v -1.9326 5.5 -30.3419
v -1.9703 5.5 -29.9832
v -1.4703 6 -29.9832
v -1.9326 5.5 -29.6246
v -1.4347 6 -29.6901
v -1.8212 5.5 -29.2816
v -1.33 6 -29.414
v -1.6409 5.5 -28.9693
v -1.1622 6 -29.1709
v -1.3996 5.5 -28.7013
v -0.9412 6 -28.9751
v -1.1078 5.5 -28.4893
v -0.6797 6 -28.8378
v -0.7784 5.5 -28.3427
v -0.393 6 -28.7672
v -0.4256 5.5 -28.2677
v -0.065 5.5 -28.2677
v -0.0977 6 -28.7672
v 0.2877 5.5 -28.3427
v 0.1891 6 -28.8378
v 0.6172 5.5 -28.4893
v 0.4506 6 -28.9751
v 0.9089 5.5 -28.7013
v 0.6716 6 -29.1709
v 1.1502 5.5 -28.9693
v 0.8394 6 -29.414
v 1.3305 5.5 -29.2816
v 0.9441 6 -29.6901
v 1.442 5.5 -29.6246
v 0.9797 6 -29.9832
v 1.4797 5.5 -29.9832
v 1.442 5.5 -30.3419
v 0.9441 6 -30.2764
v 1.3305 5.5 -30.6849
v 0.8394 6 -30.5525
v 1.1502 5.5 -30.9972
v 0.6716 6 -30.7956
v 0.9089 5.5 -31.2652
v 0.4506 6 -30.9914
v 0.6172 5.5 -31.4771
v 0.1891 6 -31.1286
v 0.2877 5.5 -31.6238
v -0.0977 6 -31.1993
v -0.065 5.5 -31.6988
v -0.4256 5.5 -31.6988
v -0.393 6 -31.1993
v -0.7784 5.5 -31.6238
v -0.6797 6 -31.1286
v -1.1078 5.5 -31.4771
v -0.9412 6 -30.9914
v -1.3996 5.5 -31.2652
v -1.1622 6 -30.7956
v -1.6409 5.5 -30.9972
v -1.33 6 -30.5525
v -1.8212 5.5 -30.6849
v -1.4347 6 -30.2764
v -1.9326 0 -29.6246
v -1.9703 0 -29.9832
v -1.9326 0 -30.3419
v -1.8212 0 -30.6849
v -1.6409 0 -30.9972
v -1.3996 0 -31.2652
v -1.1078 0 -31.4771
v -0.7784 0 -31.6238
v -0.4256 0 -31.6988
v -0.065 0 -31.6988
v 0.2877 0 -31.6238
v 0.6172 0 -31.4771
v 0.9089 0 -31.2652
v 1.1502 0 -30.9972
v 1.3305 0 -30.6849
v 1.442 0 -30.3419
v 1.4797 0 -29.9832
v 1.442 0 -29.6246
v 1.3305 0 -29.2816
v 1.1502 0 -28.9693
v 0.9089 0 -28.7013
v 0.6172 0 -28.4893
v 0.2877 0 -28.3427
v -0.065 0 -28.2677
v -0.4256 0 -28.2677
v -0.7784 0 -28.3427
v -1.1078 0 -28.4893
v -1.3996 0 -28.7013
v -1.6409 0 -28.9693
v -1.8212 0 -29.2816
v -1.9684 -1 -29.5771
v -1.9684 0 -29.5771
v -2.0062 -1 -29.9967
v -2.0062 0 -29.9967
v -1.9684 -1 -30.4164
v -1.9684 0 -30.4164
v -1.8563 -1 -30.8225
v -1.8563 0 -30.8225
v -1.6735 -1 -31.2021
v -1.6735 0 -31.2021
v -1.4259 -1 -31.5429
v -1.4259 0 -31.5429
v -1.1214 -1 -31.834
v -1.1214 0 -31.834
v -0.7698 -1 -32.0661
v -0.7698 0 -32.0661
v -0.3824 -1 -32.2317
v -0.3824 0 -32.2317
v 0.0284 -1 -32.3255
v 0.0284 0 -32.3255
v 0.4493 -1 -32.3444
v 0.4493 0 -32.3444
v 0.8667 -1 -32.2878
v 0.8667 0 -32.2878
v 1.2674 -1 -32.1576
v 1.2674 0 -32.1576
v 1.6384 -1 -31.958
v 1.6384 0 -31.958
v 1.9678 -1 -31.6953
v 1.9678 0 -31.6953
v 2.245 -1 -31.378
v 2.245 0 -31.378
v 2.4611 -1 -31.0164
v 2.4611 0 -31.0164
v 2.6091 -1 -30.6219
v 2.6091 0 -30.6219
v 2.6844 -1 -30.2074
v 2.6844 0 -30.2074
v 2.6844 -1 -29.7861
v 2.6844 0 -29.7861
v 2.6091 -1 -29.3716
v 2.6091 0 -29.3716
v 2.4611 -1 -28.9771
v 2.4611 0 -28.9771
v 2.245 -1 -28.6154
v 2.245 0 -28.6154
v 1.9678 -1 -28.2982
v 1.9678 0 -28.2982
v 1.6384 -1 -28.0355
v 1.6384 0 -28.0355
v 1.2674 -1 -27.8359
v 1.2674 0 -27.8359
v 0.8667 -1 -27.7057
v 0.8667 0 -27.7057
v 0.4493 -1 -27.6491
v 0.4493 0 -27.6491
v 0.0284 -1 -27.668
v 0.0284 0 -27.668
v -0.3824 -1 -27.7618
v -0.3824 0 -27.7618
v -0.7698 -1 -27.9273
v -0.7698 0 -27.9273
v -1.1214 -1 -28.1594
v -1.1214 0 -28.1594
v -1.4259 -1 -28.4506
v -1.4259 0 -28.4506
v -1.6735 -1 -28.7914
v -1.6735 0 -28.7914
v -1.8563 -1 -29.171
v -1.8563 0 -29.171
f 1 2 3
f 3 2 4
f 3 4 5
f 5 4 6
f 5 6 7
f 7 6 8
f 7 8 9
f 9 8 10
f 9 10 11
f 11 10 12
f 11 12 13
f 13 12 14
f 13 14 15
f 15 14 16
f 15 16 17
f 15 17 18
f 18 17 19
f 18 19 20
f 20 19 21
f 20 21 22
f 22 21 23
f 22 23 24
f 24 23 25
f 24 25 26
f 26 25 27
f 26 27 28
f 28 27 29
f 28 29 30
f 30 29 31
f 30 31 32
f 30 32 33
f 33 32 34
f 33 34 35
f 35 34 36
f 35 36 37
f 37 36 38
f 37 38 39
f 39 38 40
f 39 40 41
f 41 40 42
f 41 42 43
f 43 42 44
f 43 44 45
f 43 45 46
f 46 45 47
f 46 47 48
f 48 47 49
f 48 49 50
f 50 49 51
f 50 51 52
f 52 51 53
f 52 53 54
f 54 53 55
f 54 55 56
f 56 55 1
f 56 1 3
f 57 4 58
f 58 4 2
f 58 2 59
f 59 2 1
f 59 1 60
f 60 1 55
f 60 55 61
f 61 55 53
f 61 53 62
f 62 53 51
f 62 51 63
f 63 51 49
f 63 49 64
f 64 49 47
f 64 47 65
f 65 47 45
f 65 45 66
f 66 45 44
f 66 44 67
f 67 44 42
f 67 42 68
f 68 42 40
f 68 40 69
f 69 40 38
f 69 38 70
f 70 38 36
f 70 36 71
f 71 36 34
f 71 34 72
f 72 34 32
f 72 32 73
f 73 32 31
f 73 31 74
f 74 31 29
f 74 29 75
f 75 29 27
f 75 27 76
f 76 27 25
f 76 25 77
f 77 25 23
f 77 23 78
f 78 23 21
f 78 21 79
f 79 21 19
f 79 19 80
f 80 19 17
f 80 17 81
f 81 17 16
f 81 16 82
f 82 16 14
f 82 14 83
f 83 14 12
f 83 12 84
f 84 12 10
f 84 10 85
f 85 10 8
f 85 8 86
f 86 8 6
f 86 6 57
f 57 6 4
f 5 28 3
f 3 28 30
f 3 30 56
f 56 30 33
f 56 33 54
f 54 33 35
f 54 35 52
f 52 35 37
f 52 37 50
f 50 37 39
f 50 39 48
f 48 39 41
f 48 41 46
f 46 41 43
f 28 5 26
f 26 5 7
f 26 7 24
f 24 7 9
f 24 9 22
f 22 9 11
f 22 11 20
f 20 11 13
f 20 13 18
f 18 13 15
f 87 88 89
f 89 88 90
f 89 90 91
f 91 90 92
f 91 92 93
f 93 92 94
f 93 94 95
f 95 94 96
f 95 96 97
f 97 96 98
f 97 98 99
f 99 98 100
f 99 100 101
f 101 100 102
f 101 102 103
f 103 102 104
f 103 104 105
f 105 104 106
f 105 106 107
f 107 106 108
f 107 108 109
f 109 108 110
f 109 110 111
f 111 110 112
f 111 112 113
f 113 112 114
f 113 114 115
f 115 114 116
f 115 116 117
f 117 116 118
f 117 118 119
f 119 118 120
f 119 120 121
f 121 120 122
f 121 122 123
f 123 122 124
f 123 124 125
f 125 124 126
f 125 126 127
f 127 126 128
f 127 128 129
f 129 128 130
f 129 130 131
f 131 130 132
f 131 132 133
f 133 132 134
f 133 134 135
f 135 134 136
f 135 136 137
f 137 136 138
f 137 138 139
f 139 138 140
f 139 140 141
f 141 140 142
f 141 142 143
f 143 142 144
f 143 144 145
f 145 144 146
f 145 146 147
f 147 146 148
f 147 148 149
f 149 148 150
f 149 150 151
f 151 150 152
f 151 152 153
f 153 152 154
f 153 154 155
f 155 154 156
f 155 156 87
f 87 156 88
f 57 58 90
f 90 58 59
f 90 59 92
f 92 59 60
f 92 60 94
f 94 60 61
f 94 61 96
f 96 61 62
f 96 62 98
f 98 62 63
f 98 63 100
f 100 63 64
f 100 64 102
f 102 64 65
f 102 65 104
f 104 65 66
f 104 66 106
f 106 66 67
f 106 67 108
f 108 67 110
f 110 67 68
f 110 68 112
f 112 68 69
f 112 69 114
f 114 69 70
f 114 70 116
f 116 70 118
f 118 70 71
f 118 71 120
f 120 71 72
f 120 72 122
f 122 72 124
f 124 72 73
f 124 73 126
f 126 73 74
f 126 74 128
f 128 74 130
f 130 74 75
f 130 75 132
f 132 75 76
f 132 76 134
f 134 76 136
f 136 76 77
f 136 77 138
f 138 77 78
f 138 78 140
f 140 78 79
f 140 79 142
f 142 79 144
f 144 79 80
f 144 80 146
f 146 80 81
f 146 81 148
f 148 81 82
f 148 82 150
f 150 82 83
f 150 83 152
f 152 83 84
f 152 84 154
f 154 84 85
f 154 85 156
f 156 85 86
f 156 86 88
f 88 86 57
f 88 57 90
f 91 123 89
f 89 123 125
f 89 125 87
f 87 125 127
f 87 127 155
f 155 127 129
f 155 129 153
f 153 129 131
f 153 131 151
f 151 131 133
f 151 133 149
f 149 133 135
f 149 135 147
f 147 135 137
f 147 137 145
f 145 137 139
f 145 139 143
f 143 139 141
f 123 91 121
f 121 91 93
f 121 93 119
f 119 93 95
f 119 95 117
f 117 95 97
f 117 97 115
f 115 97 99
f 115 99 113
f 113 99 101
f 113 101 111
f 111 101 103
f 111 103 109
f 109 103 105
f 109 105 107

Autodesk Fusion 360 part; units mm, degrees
sketch "Sketch1" plane through (0, 0, 0) normal (1, 0, 0) x (0, 0, -1)
  circle A0 centre (0, 0) radius 21.5
  line L0 (19.85, -10.1) -> (-19.85, -10.1)
  line L1 (-19.85, -10.1) -> (-19.85, 10.1)
  line L2 (-19.85, 10.1) -> (19.85, 10.1)
  line L3 (19.85, 10.1) -> (19.85, -10.1)
  line L4 (19.85, -10.1) -> (-19.85, 10.1) construction
  line L5 (-19.85, -10.1) -> (19.85, 10.1) construction
  circle A1 centre (0, 0) radius 24
  line L6 (10.25, -26.5) -> (-10.25, -26.5)
  line L7 (-10.25, -26.5) -> (-10.25, 26.5)
  line L8 (-10.25, 26.5) -> (10.25, 26.5)
  line L9 (10.25, 26.5) -> (10.25, -26.5)
  line L10 (10.25, -26.5) -> (-10.25, 26.5) construction
  line L11 (-10.25, -26.5) -> (10.25, 26.5) construction
  line L12 (-10.25, 16.5) -> (10.25, 16.5)
  line L13 (-10.25, -16.5) -> (10.25, -16.5)
  dimension "CaseInnerDiameter" = 43
  dimension "BatteryLength" = 39.7
  dimension "BatteryWidth" = 20.2
  dimension "CaseWallThickness" = 2.5
  dimension "LugWidth" = 20.5
  dimension "StrapCutout" = 53
  dimension "UpperLugInset" = 10
  dimension "LowerLugInset" = 10
sketch "Sketch19" plane through (0, 0, 0) normal (0, 1, 0) x (1, 0, 0)
  circle A0 centre (-0.2453, 29.9832) radius 1.725
  circle A1 centre (0.3438, 29.9967) radius 2.35
  dimension "d142" = 3.45
  dimension "d145" = 4.7
extrude "Extrude28" add sketch "Sketch19" against normal blind 1 contours A0 | A1 makes body 1
extrude "Extrude27" add sketch "Sketch19" along normal blind 6 separate body contours A0 makes body 2
combine "Combine3" operation add target body 1 tool bodies 2
chamfer "Chamfer9" distance 0.5 angle 45 1 edges at (-1.8536, 6, -29.3595) on bodies 1
equation "StrapCutout = CaseInnerDiameter + 10 mm"
equation "BottomCaseLipChamfer = 1.20 mm"
equation "UpperCaseThickness = 5.77 mm"
